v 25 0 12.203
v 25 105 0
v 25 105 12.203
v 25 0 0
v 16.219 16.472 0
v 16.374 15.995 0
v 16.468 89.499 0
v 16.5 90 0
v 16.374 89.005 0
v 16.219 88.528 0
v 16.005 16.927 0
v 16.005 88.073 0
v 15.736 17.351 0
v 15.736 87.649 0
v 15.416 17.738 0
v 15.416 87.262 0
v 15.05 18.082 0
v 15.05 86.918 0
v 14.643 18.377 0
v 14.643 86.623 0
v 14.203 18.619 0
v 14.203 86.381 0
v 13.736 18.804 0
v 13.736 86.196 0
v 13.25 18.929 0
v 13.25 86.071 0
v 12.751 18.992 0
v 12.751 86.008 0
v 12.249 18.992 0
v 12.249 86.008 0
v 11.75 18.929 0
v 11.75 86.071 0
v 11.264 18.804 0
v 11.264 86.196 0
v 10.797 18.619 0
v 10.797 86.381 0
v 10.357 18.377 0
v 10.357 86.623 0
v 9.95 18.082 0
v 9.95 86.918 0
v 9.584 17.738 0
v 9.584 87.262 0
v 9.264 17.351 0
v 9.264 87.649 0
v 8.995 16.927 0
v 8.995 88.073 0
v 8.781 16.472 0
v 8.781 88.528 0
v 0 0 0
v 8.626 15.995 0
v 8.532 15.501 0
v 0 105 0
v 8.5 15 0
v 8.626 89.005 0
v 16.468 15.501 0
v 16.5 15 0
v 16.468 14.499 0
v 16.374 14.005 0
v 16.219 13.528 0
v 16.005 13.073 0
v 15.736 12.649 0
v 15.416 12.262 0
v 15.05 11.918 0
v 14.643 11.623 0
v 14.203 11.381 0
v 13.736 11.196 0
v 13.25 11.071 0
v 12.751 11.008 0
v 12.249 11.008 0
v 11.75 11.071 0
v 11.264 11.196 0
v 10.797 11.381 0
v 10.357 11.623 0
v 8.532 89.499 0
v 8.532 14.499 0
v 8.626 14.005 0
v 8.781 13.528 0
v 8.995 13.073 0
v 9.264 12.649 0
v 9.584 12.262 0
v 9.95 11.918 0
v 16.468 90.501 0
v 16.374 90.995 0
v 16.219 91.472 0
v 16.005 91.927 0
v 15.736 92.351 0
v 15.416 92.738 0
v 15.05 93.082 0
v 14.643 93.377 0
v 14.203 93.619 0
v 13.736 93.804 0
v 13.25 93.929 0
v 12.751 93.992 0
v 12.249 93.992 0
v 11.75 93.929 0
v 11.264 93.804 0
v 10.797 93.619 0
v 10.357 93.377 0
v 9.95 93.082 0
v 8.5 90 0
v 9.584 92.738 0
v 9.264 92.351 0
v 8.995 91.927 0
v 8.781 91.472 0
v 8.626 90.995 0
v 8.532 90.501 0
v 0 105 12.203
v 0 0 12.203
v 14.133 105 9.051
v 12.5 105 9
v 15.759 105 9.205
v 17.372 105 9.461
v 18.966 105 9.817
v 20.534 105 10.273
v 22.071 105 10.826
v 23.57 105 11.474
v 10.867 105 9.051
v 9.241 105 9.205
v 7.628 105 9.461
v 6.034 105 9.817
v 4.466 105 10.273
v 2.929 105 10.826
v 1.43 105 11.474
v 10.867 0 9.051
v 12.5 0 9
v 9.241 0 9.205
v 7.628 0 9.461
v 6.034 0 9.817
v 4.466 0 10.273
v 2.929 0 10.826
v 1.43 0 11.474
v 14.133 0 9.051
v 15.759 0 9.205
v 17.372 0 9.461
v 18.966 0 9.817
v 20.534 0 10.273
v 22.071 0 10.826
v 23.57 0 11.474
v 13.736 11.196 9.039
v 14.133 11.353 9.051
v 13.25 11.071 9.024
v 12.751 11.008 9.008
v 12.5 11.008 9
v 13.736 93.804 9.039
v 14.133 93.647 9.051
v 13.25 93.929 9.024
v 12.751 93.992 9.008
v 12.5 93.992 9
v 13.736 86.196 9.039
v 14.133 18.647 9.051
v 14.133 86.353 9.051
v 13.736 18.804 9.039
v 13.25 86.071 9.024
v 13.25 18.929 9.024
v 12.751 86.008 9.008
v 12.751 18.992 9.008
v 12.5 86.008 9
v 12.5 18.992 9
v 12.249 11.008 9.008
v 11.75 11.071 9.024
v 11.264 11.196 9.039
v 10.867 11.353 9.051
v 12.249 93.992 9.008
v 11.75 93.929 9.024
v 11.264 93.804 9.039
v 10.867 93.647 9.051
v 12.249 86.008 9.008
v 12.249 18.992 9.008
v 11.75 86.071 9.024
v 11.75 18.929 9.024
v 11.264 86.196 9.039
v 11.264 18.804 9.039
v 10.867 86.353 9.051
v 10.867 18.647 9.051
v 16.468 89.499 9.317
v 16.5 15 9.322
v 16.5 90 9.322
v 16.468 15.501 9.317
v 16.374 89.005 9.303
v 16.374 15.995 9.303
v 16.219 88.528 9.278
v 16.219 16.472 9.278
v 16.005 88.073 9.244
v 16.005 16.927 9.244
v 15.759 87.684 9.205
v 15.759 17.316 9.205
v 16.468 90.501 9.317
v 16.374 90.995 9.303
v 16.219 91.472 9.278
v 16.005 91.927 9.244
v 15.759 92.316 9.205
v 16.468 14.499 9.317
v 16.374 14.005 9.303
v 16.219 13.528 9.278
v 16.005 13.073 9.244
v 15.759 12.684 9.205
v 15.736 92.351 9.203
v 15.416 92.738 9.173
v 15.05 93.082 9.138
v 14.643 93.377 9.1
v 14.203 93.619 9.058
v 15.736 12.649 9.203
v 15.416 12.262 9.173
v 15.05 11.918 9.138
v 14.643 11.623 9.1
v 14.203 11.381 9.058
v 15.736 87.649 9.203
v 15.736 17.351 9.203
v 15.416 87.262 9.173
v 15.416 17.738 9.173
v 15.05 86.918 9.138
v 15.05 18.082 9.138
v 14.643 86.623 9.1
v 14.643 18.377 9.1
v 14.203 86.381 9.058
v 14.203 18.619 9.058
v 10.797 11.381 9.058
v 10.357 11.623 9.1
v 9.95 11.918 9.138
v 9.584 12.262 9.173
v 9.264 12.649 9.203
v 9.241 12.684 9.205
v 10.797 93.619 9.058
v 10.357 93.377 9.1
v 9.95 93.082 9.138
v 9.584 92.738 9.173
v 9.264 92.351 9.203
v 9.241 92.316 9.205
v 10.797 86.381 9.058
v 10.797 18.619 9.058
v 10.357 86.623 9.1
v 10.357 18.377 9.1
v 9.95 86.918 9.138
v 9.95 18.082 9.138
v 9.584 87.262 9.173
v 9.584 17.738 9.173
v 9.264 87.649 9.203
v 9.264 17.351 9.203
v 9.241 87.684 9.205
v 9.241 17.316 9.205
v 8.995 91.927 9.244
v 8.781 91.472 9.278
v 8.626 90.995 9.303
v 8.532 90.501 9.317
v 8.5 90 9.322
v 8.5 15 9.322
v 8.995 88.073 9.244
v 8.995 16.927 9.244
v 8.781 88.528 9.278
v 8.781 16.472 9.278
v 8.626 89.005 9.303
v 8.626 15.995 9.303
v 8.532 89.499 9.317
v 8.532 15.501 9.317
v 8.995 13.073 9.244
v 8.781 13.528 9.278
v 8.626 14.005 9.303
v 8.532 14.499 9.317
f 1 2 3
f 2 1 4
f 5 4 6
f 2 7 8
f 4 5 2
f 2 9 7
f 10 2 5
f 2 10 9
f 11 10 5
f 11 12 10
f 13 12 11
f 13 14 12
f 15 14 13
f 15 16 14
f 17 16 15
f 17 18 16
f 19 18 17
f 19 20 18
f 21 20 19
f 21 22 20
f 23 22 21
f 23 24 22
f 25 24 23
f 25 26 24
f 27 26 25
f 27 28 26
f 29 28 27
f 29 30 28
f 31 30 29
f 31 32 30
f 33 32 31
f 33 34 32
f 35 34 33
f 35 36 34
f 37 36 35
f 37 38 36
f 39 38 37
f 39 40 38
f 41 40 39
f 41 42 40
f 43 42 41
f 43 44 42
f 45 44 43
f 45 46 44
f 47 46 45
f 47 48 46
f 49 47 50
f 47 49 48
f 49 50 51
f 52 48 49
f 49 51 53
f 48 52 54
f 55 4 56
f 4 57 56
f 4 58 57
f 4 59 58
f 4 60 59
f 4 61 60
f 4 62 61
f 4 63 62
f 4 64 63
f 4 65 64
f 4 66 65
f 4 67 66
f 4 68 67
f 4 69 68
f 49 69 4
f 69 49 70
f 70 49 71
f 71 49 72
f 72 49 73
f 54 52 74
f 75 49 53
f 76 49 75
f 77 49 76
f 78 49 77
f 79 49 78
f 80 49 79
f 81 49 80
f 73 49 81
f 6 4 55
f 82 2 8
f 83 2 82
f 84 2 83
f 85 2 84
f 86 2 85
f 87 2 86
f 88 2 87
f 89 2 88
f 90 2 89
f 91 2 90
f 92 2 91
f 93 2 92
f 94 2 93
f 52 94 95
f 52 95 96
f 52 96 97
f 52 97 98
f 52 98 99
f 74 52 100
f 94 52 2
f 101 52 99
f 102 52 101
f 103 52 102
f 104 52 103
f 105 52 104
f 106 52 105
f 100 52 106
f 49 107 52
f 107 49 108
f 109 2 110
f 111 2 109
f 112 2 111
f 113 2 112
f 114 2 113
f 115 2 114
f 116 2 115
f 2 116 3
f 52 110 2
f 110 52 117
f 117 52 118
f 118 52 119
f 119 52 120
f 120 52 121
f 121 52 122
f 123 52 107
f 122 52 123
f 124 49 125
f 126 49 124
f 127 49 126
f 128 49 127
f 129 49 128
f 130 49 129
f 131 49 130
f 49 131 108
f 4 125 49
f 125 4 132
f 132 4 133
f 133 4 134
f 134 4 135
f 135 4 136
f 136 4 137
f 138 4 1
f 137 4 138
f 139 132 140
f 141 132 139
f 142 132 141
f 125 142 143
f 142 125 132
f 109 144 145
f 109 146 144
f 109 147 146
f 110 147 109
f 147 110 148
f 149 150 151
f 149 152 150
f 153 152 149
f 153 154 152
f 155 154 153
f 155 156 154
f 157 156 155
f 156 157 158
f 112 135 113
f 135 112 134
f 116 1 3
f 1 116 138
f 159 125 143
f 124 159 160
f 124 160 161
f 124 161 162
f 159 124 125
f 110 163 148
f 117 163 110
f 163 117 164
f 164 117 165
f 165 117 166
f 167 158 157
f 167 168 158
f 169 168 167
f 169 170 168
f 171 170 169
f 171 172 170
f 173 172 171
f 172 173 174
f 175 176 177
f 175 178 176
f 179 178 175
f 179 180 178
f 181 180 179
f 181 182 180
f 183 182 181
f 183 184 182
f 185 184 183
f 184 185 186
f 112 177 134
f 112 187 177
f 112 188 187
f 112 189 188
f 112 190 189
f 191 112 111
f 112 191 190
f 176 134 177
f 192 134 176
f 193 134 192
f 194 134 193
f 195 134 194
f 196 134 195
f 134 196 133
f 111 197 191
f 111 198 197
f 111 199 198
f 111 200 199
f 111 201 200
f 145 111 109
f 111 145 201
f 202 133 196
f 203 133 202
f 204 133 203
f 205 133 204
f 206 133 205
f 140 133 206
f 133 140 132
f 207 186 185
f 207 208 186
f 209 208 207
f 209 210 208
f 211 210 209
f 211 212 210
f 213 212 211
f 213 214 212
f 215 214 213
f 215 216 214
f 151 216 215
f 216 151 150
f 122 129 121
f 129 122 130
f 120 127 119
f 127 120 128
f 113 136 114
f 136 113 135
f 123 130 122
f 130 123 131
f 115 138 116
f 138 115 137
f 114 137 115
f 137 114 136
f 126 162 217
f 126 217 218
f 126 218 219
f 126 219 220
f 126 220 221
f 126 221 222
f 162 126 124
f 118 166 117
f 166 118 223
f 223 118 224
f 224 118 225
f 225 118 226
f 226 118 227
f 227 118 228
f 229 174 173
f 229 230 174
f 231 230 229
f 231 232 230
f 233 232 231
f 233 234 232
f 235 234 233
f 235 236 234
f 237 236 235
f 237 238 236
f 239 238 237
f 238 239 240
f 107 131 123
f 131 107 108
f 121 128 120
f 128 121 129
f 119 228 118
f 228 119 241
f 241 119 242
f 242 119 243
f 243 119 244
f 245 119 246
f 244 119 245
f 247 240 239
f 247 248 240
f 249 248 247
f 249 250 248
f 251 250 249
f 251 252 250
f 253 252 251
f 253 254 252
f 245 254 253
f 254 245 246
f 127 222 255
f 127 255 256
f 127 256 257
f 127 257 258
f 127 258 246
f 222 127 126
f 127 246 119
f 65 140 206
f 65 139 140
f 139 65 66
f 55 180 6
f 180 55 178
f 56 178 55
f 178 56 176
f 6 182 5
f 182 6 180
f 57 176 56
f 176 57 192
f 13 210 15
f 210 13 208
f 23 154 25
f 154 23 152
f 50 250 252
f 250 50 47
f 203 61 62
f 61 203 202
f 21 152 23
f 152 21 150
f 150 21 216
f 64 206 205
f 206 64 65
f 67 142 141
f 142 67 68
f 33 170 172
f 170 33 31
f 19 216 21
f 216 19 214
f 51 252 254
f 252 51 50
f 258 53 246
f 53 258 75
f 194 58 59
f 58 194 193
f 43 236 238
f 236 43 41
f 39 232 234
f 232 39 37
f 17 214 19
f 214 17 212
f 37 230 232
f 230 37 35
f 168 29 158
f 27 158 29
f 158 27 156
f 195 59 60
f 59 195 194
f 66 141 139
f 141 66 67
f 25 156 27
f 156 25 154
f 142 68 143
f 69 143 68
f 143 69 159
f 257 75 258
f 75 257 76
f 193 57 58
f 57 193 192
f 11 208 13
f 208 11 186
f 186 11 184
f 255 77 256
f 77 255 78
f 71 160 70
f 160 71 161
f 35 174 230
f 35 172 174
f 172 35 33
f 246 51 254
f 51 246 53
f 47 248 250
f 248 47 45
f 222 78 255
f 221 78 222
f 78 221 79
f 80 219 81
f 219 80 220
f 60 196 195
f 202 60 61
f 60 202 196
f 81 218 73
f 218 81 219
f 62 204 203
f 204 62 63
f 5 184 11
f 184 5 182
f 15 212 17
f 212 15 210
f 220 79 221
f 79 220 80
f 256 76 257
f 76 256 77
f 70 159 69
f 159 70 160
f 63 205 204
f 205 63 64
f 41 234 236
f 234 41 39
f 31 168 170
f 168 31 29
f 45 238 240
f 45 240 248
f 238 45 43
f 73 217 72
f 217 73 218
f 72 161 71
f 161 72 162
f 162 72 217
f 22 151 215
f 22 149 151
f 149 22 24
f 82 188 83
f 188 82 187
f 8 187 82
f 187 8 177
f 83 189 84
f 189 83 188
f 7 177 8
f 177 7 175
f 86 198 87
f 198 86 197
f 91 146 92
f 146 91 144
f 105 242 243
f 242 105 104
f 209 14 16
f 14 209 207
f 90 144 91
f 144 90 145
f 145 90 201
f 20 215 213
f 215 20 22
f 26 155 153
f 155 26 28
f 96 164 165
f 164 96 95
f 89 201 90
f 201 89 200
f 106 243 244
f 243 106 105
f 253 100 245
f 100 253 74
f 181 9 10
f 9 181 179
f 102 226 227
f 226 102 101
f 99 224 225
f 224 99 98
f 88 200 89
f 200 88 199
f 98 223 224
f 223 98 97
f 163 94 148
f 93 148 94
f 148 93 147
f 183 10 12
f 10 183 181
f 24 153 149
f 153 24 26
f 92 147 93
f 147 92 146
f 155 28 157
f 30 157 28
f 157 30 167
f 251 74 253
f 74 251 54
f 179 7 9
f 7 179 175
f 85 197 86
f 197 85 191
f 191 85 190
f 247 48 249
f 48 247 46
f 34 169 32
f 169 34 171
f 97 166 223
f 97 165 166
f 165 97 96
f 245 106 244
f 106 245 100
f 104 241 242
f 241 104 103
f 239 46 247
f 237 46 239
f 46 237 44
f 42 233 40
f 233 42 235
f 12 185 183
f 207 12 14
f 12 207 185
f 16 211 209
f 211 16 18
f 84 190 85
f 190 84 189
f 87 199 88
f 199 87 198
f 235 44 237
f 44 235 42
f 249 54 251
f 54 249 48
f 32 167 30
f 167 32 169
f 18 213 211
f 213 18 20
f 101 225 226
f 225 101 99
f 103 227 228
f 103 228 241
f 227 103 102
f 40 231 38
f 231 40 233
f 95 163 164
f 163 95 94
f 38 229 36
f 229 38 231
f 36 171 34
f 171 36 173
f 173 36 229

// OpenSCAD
/*

Bed repair brackets for Alex
@idnorton
2024-12-26

Licenced as Creative Commons Attribution Non Commercial 3.0
See https://creativecommons.org/licenses/by-nc/3.0/

Specifically you may not sell the design or products using the design.
You're welcome to use the design to build things for your own commercial event

Print settings: 0.20mm QUALITY
Supports: None
Infill: 20%
Perimiters: 2

*/

bedpost = 52;
plate_x = 25;
plate_y = 105;
plate_z = 35;
hole = 8;
spacing = 75;

difference() {

  // Cuboid
  cube([plate_x, plate_y, plate_z]);

  translate([plate_x/2, 0, plate_z]) {
    rotate([270, 0, 0]) {
      cylinder(h = plate_y, d = bedpost, $fn = 100);
    }
  }

  // Offset from bottom and top
  offset = (plate_y - spacing)/2;

  translate([plate_x/2, offset, 0]) {
    cylinder(h = plate_z, d = hole, $fn = 50);
  }

  translate([plate_x/2, plate_y - offset, 0]) {
    cylinder(h = plate_z, d = hole, $fn = 50);
  }
}
